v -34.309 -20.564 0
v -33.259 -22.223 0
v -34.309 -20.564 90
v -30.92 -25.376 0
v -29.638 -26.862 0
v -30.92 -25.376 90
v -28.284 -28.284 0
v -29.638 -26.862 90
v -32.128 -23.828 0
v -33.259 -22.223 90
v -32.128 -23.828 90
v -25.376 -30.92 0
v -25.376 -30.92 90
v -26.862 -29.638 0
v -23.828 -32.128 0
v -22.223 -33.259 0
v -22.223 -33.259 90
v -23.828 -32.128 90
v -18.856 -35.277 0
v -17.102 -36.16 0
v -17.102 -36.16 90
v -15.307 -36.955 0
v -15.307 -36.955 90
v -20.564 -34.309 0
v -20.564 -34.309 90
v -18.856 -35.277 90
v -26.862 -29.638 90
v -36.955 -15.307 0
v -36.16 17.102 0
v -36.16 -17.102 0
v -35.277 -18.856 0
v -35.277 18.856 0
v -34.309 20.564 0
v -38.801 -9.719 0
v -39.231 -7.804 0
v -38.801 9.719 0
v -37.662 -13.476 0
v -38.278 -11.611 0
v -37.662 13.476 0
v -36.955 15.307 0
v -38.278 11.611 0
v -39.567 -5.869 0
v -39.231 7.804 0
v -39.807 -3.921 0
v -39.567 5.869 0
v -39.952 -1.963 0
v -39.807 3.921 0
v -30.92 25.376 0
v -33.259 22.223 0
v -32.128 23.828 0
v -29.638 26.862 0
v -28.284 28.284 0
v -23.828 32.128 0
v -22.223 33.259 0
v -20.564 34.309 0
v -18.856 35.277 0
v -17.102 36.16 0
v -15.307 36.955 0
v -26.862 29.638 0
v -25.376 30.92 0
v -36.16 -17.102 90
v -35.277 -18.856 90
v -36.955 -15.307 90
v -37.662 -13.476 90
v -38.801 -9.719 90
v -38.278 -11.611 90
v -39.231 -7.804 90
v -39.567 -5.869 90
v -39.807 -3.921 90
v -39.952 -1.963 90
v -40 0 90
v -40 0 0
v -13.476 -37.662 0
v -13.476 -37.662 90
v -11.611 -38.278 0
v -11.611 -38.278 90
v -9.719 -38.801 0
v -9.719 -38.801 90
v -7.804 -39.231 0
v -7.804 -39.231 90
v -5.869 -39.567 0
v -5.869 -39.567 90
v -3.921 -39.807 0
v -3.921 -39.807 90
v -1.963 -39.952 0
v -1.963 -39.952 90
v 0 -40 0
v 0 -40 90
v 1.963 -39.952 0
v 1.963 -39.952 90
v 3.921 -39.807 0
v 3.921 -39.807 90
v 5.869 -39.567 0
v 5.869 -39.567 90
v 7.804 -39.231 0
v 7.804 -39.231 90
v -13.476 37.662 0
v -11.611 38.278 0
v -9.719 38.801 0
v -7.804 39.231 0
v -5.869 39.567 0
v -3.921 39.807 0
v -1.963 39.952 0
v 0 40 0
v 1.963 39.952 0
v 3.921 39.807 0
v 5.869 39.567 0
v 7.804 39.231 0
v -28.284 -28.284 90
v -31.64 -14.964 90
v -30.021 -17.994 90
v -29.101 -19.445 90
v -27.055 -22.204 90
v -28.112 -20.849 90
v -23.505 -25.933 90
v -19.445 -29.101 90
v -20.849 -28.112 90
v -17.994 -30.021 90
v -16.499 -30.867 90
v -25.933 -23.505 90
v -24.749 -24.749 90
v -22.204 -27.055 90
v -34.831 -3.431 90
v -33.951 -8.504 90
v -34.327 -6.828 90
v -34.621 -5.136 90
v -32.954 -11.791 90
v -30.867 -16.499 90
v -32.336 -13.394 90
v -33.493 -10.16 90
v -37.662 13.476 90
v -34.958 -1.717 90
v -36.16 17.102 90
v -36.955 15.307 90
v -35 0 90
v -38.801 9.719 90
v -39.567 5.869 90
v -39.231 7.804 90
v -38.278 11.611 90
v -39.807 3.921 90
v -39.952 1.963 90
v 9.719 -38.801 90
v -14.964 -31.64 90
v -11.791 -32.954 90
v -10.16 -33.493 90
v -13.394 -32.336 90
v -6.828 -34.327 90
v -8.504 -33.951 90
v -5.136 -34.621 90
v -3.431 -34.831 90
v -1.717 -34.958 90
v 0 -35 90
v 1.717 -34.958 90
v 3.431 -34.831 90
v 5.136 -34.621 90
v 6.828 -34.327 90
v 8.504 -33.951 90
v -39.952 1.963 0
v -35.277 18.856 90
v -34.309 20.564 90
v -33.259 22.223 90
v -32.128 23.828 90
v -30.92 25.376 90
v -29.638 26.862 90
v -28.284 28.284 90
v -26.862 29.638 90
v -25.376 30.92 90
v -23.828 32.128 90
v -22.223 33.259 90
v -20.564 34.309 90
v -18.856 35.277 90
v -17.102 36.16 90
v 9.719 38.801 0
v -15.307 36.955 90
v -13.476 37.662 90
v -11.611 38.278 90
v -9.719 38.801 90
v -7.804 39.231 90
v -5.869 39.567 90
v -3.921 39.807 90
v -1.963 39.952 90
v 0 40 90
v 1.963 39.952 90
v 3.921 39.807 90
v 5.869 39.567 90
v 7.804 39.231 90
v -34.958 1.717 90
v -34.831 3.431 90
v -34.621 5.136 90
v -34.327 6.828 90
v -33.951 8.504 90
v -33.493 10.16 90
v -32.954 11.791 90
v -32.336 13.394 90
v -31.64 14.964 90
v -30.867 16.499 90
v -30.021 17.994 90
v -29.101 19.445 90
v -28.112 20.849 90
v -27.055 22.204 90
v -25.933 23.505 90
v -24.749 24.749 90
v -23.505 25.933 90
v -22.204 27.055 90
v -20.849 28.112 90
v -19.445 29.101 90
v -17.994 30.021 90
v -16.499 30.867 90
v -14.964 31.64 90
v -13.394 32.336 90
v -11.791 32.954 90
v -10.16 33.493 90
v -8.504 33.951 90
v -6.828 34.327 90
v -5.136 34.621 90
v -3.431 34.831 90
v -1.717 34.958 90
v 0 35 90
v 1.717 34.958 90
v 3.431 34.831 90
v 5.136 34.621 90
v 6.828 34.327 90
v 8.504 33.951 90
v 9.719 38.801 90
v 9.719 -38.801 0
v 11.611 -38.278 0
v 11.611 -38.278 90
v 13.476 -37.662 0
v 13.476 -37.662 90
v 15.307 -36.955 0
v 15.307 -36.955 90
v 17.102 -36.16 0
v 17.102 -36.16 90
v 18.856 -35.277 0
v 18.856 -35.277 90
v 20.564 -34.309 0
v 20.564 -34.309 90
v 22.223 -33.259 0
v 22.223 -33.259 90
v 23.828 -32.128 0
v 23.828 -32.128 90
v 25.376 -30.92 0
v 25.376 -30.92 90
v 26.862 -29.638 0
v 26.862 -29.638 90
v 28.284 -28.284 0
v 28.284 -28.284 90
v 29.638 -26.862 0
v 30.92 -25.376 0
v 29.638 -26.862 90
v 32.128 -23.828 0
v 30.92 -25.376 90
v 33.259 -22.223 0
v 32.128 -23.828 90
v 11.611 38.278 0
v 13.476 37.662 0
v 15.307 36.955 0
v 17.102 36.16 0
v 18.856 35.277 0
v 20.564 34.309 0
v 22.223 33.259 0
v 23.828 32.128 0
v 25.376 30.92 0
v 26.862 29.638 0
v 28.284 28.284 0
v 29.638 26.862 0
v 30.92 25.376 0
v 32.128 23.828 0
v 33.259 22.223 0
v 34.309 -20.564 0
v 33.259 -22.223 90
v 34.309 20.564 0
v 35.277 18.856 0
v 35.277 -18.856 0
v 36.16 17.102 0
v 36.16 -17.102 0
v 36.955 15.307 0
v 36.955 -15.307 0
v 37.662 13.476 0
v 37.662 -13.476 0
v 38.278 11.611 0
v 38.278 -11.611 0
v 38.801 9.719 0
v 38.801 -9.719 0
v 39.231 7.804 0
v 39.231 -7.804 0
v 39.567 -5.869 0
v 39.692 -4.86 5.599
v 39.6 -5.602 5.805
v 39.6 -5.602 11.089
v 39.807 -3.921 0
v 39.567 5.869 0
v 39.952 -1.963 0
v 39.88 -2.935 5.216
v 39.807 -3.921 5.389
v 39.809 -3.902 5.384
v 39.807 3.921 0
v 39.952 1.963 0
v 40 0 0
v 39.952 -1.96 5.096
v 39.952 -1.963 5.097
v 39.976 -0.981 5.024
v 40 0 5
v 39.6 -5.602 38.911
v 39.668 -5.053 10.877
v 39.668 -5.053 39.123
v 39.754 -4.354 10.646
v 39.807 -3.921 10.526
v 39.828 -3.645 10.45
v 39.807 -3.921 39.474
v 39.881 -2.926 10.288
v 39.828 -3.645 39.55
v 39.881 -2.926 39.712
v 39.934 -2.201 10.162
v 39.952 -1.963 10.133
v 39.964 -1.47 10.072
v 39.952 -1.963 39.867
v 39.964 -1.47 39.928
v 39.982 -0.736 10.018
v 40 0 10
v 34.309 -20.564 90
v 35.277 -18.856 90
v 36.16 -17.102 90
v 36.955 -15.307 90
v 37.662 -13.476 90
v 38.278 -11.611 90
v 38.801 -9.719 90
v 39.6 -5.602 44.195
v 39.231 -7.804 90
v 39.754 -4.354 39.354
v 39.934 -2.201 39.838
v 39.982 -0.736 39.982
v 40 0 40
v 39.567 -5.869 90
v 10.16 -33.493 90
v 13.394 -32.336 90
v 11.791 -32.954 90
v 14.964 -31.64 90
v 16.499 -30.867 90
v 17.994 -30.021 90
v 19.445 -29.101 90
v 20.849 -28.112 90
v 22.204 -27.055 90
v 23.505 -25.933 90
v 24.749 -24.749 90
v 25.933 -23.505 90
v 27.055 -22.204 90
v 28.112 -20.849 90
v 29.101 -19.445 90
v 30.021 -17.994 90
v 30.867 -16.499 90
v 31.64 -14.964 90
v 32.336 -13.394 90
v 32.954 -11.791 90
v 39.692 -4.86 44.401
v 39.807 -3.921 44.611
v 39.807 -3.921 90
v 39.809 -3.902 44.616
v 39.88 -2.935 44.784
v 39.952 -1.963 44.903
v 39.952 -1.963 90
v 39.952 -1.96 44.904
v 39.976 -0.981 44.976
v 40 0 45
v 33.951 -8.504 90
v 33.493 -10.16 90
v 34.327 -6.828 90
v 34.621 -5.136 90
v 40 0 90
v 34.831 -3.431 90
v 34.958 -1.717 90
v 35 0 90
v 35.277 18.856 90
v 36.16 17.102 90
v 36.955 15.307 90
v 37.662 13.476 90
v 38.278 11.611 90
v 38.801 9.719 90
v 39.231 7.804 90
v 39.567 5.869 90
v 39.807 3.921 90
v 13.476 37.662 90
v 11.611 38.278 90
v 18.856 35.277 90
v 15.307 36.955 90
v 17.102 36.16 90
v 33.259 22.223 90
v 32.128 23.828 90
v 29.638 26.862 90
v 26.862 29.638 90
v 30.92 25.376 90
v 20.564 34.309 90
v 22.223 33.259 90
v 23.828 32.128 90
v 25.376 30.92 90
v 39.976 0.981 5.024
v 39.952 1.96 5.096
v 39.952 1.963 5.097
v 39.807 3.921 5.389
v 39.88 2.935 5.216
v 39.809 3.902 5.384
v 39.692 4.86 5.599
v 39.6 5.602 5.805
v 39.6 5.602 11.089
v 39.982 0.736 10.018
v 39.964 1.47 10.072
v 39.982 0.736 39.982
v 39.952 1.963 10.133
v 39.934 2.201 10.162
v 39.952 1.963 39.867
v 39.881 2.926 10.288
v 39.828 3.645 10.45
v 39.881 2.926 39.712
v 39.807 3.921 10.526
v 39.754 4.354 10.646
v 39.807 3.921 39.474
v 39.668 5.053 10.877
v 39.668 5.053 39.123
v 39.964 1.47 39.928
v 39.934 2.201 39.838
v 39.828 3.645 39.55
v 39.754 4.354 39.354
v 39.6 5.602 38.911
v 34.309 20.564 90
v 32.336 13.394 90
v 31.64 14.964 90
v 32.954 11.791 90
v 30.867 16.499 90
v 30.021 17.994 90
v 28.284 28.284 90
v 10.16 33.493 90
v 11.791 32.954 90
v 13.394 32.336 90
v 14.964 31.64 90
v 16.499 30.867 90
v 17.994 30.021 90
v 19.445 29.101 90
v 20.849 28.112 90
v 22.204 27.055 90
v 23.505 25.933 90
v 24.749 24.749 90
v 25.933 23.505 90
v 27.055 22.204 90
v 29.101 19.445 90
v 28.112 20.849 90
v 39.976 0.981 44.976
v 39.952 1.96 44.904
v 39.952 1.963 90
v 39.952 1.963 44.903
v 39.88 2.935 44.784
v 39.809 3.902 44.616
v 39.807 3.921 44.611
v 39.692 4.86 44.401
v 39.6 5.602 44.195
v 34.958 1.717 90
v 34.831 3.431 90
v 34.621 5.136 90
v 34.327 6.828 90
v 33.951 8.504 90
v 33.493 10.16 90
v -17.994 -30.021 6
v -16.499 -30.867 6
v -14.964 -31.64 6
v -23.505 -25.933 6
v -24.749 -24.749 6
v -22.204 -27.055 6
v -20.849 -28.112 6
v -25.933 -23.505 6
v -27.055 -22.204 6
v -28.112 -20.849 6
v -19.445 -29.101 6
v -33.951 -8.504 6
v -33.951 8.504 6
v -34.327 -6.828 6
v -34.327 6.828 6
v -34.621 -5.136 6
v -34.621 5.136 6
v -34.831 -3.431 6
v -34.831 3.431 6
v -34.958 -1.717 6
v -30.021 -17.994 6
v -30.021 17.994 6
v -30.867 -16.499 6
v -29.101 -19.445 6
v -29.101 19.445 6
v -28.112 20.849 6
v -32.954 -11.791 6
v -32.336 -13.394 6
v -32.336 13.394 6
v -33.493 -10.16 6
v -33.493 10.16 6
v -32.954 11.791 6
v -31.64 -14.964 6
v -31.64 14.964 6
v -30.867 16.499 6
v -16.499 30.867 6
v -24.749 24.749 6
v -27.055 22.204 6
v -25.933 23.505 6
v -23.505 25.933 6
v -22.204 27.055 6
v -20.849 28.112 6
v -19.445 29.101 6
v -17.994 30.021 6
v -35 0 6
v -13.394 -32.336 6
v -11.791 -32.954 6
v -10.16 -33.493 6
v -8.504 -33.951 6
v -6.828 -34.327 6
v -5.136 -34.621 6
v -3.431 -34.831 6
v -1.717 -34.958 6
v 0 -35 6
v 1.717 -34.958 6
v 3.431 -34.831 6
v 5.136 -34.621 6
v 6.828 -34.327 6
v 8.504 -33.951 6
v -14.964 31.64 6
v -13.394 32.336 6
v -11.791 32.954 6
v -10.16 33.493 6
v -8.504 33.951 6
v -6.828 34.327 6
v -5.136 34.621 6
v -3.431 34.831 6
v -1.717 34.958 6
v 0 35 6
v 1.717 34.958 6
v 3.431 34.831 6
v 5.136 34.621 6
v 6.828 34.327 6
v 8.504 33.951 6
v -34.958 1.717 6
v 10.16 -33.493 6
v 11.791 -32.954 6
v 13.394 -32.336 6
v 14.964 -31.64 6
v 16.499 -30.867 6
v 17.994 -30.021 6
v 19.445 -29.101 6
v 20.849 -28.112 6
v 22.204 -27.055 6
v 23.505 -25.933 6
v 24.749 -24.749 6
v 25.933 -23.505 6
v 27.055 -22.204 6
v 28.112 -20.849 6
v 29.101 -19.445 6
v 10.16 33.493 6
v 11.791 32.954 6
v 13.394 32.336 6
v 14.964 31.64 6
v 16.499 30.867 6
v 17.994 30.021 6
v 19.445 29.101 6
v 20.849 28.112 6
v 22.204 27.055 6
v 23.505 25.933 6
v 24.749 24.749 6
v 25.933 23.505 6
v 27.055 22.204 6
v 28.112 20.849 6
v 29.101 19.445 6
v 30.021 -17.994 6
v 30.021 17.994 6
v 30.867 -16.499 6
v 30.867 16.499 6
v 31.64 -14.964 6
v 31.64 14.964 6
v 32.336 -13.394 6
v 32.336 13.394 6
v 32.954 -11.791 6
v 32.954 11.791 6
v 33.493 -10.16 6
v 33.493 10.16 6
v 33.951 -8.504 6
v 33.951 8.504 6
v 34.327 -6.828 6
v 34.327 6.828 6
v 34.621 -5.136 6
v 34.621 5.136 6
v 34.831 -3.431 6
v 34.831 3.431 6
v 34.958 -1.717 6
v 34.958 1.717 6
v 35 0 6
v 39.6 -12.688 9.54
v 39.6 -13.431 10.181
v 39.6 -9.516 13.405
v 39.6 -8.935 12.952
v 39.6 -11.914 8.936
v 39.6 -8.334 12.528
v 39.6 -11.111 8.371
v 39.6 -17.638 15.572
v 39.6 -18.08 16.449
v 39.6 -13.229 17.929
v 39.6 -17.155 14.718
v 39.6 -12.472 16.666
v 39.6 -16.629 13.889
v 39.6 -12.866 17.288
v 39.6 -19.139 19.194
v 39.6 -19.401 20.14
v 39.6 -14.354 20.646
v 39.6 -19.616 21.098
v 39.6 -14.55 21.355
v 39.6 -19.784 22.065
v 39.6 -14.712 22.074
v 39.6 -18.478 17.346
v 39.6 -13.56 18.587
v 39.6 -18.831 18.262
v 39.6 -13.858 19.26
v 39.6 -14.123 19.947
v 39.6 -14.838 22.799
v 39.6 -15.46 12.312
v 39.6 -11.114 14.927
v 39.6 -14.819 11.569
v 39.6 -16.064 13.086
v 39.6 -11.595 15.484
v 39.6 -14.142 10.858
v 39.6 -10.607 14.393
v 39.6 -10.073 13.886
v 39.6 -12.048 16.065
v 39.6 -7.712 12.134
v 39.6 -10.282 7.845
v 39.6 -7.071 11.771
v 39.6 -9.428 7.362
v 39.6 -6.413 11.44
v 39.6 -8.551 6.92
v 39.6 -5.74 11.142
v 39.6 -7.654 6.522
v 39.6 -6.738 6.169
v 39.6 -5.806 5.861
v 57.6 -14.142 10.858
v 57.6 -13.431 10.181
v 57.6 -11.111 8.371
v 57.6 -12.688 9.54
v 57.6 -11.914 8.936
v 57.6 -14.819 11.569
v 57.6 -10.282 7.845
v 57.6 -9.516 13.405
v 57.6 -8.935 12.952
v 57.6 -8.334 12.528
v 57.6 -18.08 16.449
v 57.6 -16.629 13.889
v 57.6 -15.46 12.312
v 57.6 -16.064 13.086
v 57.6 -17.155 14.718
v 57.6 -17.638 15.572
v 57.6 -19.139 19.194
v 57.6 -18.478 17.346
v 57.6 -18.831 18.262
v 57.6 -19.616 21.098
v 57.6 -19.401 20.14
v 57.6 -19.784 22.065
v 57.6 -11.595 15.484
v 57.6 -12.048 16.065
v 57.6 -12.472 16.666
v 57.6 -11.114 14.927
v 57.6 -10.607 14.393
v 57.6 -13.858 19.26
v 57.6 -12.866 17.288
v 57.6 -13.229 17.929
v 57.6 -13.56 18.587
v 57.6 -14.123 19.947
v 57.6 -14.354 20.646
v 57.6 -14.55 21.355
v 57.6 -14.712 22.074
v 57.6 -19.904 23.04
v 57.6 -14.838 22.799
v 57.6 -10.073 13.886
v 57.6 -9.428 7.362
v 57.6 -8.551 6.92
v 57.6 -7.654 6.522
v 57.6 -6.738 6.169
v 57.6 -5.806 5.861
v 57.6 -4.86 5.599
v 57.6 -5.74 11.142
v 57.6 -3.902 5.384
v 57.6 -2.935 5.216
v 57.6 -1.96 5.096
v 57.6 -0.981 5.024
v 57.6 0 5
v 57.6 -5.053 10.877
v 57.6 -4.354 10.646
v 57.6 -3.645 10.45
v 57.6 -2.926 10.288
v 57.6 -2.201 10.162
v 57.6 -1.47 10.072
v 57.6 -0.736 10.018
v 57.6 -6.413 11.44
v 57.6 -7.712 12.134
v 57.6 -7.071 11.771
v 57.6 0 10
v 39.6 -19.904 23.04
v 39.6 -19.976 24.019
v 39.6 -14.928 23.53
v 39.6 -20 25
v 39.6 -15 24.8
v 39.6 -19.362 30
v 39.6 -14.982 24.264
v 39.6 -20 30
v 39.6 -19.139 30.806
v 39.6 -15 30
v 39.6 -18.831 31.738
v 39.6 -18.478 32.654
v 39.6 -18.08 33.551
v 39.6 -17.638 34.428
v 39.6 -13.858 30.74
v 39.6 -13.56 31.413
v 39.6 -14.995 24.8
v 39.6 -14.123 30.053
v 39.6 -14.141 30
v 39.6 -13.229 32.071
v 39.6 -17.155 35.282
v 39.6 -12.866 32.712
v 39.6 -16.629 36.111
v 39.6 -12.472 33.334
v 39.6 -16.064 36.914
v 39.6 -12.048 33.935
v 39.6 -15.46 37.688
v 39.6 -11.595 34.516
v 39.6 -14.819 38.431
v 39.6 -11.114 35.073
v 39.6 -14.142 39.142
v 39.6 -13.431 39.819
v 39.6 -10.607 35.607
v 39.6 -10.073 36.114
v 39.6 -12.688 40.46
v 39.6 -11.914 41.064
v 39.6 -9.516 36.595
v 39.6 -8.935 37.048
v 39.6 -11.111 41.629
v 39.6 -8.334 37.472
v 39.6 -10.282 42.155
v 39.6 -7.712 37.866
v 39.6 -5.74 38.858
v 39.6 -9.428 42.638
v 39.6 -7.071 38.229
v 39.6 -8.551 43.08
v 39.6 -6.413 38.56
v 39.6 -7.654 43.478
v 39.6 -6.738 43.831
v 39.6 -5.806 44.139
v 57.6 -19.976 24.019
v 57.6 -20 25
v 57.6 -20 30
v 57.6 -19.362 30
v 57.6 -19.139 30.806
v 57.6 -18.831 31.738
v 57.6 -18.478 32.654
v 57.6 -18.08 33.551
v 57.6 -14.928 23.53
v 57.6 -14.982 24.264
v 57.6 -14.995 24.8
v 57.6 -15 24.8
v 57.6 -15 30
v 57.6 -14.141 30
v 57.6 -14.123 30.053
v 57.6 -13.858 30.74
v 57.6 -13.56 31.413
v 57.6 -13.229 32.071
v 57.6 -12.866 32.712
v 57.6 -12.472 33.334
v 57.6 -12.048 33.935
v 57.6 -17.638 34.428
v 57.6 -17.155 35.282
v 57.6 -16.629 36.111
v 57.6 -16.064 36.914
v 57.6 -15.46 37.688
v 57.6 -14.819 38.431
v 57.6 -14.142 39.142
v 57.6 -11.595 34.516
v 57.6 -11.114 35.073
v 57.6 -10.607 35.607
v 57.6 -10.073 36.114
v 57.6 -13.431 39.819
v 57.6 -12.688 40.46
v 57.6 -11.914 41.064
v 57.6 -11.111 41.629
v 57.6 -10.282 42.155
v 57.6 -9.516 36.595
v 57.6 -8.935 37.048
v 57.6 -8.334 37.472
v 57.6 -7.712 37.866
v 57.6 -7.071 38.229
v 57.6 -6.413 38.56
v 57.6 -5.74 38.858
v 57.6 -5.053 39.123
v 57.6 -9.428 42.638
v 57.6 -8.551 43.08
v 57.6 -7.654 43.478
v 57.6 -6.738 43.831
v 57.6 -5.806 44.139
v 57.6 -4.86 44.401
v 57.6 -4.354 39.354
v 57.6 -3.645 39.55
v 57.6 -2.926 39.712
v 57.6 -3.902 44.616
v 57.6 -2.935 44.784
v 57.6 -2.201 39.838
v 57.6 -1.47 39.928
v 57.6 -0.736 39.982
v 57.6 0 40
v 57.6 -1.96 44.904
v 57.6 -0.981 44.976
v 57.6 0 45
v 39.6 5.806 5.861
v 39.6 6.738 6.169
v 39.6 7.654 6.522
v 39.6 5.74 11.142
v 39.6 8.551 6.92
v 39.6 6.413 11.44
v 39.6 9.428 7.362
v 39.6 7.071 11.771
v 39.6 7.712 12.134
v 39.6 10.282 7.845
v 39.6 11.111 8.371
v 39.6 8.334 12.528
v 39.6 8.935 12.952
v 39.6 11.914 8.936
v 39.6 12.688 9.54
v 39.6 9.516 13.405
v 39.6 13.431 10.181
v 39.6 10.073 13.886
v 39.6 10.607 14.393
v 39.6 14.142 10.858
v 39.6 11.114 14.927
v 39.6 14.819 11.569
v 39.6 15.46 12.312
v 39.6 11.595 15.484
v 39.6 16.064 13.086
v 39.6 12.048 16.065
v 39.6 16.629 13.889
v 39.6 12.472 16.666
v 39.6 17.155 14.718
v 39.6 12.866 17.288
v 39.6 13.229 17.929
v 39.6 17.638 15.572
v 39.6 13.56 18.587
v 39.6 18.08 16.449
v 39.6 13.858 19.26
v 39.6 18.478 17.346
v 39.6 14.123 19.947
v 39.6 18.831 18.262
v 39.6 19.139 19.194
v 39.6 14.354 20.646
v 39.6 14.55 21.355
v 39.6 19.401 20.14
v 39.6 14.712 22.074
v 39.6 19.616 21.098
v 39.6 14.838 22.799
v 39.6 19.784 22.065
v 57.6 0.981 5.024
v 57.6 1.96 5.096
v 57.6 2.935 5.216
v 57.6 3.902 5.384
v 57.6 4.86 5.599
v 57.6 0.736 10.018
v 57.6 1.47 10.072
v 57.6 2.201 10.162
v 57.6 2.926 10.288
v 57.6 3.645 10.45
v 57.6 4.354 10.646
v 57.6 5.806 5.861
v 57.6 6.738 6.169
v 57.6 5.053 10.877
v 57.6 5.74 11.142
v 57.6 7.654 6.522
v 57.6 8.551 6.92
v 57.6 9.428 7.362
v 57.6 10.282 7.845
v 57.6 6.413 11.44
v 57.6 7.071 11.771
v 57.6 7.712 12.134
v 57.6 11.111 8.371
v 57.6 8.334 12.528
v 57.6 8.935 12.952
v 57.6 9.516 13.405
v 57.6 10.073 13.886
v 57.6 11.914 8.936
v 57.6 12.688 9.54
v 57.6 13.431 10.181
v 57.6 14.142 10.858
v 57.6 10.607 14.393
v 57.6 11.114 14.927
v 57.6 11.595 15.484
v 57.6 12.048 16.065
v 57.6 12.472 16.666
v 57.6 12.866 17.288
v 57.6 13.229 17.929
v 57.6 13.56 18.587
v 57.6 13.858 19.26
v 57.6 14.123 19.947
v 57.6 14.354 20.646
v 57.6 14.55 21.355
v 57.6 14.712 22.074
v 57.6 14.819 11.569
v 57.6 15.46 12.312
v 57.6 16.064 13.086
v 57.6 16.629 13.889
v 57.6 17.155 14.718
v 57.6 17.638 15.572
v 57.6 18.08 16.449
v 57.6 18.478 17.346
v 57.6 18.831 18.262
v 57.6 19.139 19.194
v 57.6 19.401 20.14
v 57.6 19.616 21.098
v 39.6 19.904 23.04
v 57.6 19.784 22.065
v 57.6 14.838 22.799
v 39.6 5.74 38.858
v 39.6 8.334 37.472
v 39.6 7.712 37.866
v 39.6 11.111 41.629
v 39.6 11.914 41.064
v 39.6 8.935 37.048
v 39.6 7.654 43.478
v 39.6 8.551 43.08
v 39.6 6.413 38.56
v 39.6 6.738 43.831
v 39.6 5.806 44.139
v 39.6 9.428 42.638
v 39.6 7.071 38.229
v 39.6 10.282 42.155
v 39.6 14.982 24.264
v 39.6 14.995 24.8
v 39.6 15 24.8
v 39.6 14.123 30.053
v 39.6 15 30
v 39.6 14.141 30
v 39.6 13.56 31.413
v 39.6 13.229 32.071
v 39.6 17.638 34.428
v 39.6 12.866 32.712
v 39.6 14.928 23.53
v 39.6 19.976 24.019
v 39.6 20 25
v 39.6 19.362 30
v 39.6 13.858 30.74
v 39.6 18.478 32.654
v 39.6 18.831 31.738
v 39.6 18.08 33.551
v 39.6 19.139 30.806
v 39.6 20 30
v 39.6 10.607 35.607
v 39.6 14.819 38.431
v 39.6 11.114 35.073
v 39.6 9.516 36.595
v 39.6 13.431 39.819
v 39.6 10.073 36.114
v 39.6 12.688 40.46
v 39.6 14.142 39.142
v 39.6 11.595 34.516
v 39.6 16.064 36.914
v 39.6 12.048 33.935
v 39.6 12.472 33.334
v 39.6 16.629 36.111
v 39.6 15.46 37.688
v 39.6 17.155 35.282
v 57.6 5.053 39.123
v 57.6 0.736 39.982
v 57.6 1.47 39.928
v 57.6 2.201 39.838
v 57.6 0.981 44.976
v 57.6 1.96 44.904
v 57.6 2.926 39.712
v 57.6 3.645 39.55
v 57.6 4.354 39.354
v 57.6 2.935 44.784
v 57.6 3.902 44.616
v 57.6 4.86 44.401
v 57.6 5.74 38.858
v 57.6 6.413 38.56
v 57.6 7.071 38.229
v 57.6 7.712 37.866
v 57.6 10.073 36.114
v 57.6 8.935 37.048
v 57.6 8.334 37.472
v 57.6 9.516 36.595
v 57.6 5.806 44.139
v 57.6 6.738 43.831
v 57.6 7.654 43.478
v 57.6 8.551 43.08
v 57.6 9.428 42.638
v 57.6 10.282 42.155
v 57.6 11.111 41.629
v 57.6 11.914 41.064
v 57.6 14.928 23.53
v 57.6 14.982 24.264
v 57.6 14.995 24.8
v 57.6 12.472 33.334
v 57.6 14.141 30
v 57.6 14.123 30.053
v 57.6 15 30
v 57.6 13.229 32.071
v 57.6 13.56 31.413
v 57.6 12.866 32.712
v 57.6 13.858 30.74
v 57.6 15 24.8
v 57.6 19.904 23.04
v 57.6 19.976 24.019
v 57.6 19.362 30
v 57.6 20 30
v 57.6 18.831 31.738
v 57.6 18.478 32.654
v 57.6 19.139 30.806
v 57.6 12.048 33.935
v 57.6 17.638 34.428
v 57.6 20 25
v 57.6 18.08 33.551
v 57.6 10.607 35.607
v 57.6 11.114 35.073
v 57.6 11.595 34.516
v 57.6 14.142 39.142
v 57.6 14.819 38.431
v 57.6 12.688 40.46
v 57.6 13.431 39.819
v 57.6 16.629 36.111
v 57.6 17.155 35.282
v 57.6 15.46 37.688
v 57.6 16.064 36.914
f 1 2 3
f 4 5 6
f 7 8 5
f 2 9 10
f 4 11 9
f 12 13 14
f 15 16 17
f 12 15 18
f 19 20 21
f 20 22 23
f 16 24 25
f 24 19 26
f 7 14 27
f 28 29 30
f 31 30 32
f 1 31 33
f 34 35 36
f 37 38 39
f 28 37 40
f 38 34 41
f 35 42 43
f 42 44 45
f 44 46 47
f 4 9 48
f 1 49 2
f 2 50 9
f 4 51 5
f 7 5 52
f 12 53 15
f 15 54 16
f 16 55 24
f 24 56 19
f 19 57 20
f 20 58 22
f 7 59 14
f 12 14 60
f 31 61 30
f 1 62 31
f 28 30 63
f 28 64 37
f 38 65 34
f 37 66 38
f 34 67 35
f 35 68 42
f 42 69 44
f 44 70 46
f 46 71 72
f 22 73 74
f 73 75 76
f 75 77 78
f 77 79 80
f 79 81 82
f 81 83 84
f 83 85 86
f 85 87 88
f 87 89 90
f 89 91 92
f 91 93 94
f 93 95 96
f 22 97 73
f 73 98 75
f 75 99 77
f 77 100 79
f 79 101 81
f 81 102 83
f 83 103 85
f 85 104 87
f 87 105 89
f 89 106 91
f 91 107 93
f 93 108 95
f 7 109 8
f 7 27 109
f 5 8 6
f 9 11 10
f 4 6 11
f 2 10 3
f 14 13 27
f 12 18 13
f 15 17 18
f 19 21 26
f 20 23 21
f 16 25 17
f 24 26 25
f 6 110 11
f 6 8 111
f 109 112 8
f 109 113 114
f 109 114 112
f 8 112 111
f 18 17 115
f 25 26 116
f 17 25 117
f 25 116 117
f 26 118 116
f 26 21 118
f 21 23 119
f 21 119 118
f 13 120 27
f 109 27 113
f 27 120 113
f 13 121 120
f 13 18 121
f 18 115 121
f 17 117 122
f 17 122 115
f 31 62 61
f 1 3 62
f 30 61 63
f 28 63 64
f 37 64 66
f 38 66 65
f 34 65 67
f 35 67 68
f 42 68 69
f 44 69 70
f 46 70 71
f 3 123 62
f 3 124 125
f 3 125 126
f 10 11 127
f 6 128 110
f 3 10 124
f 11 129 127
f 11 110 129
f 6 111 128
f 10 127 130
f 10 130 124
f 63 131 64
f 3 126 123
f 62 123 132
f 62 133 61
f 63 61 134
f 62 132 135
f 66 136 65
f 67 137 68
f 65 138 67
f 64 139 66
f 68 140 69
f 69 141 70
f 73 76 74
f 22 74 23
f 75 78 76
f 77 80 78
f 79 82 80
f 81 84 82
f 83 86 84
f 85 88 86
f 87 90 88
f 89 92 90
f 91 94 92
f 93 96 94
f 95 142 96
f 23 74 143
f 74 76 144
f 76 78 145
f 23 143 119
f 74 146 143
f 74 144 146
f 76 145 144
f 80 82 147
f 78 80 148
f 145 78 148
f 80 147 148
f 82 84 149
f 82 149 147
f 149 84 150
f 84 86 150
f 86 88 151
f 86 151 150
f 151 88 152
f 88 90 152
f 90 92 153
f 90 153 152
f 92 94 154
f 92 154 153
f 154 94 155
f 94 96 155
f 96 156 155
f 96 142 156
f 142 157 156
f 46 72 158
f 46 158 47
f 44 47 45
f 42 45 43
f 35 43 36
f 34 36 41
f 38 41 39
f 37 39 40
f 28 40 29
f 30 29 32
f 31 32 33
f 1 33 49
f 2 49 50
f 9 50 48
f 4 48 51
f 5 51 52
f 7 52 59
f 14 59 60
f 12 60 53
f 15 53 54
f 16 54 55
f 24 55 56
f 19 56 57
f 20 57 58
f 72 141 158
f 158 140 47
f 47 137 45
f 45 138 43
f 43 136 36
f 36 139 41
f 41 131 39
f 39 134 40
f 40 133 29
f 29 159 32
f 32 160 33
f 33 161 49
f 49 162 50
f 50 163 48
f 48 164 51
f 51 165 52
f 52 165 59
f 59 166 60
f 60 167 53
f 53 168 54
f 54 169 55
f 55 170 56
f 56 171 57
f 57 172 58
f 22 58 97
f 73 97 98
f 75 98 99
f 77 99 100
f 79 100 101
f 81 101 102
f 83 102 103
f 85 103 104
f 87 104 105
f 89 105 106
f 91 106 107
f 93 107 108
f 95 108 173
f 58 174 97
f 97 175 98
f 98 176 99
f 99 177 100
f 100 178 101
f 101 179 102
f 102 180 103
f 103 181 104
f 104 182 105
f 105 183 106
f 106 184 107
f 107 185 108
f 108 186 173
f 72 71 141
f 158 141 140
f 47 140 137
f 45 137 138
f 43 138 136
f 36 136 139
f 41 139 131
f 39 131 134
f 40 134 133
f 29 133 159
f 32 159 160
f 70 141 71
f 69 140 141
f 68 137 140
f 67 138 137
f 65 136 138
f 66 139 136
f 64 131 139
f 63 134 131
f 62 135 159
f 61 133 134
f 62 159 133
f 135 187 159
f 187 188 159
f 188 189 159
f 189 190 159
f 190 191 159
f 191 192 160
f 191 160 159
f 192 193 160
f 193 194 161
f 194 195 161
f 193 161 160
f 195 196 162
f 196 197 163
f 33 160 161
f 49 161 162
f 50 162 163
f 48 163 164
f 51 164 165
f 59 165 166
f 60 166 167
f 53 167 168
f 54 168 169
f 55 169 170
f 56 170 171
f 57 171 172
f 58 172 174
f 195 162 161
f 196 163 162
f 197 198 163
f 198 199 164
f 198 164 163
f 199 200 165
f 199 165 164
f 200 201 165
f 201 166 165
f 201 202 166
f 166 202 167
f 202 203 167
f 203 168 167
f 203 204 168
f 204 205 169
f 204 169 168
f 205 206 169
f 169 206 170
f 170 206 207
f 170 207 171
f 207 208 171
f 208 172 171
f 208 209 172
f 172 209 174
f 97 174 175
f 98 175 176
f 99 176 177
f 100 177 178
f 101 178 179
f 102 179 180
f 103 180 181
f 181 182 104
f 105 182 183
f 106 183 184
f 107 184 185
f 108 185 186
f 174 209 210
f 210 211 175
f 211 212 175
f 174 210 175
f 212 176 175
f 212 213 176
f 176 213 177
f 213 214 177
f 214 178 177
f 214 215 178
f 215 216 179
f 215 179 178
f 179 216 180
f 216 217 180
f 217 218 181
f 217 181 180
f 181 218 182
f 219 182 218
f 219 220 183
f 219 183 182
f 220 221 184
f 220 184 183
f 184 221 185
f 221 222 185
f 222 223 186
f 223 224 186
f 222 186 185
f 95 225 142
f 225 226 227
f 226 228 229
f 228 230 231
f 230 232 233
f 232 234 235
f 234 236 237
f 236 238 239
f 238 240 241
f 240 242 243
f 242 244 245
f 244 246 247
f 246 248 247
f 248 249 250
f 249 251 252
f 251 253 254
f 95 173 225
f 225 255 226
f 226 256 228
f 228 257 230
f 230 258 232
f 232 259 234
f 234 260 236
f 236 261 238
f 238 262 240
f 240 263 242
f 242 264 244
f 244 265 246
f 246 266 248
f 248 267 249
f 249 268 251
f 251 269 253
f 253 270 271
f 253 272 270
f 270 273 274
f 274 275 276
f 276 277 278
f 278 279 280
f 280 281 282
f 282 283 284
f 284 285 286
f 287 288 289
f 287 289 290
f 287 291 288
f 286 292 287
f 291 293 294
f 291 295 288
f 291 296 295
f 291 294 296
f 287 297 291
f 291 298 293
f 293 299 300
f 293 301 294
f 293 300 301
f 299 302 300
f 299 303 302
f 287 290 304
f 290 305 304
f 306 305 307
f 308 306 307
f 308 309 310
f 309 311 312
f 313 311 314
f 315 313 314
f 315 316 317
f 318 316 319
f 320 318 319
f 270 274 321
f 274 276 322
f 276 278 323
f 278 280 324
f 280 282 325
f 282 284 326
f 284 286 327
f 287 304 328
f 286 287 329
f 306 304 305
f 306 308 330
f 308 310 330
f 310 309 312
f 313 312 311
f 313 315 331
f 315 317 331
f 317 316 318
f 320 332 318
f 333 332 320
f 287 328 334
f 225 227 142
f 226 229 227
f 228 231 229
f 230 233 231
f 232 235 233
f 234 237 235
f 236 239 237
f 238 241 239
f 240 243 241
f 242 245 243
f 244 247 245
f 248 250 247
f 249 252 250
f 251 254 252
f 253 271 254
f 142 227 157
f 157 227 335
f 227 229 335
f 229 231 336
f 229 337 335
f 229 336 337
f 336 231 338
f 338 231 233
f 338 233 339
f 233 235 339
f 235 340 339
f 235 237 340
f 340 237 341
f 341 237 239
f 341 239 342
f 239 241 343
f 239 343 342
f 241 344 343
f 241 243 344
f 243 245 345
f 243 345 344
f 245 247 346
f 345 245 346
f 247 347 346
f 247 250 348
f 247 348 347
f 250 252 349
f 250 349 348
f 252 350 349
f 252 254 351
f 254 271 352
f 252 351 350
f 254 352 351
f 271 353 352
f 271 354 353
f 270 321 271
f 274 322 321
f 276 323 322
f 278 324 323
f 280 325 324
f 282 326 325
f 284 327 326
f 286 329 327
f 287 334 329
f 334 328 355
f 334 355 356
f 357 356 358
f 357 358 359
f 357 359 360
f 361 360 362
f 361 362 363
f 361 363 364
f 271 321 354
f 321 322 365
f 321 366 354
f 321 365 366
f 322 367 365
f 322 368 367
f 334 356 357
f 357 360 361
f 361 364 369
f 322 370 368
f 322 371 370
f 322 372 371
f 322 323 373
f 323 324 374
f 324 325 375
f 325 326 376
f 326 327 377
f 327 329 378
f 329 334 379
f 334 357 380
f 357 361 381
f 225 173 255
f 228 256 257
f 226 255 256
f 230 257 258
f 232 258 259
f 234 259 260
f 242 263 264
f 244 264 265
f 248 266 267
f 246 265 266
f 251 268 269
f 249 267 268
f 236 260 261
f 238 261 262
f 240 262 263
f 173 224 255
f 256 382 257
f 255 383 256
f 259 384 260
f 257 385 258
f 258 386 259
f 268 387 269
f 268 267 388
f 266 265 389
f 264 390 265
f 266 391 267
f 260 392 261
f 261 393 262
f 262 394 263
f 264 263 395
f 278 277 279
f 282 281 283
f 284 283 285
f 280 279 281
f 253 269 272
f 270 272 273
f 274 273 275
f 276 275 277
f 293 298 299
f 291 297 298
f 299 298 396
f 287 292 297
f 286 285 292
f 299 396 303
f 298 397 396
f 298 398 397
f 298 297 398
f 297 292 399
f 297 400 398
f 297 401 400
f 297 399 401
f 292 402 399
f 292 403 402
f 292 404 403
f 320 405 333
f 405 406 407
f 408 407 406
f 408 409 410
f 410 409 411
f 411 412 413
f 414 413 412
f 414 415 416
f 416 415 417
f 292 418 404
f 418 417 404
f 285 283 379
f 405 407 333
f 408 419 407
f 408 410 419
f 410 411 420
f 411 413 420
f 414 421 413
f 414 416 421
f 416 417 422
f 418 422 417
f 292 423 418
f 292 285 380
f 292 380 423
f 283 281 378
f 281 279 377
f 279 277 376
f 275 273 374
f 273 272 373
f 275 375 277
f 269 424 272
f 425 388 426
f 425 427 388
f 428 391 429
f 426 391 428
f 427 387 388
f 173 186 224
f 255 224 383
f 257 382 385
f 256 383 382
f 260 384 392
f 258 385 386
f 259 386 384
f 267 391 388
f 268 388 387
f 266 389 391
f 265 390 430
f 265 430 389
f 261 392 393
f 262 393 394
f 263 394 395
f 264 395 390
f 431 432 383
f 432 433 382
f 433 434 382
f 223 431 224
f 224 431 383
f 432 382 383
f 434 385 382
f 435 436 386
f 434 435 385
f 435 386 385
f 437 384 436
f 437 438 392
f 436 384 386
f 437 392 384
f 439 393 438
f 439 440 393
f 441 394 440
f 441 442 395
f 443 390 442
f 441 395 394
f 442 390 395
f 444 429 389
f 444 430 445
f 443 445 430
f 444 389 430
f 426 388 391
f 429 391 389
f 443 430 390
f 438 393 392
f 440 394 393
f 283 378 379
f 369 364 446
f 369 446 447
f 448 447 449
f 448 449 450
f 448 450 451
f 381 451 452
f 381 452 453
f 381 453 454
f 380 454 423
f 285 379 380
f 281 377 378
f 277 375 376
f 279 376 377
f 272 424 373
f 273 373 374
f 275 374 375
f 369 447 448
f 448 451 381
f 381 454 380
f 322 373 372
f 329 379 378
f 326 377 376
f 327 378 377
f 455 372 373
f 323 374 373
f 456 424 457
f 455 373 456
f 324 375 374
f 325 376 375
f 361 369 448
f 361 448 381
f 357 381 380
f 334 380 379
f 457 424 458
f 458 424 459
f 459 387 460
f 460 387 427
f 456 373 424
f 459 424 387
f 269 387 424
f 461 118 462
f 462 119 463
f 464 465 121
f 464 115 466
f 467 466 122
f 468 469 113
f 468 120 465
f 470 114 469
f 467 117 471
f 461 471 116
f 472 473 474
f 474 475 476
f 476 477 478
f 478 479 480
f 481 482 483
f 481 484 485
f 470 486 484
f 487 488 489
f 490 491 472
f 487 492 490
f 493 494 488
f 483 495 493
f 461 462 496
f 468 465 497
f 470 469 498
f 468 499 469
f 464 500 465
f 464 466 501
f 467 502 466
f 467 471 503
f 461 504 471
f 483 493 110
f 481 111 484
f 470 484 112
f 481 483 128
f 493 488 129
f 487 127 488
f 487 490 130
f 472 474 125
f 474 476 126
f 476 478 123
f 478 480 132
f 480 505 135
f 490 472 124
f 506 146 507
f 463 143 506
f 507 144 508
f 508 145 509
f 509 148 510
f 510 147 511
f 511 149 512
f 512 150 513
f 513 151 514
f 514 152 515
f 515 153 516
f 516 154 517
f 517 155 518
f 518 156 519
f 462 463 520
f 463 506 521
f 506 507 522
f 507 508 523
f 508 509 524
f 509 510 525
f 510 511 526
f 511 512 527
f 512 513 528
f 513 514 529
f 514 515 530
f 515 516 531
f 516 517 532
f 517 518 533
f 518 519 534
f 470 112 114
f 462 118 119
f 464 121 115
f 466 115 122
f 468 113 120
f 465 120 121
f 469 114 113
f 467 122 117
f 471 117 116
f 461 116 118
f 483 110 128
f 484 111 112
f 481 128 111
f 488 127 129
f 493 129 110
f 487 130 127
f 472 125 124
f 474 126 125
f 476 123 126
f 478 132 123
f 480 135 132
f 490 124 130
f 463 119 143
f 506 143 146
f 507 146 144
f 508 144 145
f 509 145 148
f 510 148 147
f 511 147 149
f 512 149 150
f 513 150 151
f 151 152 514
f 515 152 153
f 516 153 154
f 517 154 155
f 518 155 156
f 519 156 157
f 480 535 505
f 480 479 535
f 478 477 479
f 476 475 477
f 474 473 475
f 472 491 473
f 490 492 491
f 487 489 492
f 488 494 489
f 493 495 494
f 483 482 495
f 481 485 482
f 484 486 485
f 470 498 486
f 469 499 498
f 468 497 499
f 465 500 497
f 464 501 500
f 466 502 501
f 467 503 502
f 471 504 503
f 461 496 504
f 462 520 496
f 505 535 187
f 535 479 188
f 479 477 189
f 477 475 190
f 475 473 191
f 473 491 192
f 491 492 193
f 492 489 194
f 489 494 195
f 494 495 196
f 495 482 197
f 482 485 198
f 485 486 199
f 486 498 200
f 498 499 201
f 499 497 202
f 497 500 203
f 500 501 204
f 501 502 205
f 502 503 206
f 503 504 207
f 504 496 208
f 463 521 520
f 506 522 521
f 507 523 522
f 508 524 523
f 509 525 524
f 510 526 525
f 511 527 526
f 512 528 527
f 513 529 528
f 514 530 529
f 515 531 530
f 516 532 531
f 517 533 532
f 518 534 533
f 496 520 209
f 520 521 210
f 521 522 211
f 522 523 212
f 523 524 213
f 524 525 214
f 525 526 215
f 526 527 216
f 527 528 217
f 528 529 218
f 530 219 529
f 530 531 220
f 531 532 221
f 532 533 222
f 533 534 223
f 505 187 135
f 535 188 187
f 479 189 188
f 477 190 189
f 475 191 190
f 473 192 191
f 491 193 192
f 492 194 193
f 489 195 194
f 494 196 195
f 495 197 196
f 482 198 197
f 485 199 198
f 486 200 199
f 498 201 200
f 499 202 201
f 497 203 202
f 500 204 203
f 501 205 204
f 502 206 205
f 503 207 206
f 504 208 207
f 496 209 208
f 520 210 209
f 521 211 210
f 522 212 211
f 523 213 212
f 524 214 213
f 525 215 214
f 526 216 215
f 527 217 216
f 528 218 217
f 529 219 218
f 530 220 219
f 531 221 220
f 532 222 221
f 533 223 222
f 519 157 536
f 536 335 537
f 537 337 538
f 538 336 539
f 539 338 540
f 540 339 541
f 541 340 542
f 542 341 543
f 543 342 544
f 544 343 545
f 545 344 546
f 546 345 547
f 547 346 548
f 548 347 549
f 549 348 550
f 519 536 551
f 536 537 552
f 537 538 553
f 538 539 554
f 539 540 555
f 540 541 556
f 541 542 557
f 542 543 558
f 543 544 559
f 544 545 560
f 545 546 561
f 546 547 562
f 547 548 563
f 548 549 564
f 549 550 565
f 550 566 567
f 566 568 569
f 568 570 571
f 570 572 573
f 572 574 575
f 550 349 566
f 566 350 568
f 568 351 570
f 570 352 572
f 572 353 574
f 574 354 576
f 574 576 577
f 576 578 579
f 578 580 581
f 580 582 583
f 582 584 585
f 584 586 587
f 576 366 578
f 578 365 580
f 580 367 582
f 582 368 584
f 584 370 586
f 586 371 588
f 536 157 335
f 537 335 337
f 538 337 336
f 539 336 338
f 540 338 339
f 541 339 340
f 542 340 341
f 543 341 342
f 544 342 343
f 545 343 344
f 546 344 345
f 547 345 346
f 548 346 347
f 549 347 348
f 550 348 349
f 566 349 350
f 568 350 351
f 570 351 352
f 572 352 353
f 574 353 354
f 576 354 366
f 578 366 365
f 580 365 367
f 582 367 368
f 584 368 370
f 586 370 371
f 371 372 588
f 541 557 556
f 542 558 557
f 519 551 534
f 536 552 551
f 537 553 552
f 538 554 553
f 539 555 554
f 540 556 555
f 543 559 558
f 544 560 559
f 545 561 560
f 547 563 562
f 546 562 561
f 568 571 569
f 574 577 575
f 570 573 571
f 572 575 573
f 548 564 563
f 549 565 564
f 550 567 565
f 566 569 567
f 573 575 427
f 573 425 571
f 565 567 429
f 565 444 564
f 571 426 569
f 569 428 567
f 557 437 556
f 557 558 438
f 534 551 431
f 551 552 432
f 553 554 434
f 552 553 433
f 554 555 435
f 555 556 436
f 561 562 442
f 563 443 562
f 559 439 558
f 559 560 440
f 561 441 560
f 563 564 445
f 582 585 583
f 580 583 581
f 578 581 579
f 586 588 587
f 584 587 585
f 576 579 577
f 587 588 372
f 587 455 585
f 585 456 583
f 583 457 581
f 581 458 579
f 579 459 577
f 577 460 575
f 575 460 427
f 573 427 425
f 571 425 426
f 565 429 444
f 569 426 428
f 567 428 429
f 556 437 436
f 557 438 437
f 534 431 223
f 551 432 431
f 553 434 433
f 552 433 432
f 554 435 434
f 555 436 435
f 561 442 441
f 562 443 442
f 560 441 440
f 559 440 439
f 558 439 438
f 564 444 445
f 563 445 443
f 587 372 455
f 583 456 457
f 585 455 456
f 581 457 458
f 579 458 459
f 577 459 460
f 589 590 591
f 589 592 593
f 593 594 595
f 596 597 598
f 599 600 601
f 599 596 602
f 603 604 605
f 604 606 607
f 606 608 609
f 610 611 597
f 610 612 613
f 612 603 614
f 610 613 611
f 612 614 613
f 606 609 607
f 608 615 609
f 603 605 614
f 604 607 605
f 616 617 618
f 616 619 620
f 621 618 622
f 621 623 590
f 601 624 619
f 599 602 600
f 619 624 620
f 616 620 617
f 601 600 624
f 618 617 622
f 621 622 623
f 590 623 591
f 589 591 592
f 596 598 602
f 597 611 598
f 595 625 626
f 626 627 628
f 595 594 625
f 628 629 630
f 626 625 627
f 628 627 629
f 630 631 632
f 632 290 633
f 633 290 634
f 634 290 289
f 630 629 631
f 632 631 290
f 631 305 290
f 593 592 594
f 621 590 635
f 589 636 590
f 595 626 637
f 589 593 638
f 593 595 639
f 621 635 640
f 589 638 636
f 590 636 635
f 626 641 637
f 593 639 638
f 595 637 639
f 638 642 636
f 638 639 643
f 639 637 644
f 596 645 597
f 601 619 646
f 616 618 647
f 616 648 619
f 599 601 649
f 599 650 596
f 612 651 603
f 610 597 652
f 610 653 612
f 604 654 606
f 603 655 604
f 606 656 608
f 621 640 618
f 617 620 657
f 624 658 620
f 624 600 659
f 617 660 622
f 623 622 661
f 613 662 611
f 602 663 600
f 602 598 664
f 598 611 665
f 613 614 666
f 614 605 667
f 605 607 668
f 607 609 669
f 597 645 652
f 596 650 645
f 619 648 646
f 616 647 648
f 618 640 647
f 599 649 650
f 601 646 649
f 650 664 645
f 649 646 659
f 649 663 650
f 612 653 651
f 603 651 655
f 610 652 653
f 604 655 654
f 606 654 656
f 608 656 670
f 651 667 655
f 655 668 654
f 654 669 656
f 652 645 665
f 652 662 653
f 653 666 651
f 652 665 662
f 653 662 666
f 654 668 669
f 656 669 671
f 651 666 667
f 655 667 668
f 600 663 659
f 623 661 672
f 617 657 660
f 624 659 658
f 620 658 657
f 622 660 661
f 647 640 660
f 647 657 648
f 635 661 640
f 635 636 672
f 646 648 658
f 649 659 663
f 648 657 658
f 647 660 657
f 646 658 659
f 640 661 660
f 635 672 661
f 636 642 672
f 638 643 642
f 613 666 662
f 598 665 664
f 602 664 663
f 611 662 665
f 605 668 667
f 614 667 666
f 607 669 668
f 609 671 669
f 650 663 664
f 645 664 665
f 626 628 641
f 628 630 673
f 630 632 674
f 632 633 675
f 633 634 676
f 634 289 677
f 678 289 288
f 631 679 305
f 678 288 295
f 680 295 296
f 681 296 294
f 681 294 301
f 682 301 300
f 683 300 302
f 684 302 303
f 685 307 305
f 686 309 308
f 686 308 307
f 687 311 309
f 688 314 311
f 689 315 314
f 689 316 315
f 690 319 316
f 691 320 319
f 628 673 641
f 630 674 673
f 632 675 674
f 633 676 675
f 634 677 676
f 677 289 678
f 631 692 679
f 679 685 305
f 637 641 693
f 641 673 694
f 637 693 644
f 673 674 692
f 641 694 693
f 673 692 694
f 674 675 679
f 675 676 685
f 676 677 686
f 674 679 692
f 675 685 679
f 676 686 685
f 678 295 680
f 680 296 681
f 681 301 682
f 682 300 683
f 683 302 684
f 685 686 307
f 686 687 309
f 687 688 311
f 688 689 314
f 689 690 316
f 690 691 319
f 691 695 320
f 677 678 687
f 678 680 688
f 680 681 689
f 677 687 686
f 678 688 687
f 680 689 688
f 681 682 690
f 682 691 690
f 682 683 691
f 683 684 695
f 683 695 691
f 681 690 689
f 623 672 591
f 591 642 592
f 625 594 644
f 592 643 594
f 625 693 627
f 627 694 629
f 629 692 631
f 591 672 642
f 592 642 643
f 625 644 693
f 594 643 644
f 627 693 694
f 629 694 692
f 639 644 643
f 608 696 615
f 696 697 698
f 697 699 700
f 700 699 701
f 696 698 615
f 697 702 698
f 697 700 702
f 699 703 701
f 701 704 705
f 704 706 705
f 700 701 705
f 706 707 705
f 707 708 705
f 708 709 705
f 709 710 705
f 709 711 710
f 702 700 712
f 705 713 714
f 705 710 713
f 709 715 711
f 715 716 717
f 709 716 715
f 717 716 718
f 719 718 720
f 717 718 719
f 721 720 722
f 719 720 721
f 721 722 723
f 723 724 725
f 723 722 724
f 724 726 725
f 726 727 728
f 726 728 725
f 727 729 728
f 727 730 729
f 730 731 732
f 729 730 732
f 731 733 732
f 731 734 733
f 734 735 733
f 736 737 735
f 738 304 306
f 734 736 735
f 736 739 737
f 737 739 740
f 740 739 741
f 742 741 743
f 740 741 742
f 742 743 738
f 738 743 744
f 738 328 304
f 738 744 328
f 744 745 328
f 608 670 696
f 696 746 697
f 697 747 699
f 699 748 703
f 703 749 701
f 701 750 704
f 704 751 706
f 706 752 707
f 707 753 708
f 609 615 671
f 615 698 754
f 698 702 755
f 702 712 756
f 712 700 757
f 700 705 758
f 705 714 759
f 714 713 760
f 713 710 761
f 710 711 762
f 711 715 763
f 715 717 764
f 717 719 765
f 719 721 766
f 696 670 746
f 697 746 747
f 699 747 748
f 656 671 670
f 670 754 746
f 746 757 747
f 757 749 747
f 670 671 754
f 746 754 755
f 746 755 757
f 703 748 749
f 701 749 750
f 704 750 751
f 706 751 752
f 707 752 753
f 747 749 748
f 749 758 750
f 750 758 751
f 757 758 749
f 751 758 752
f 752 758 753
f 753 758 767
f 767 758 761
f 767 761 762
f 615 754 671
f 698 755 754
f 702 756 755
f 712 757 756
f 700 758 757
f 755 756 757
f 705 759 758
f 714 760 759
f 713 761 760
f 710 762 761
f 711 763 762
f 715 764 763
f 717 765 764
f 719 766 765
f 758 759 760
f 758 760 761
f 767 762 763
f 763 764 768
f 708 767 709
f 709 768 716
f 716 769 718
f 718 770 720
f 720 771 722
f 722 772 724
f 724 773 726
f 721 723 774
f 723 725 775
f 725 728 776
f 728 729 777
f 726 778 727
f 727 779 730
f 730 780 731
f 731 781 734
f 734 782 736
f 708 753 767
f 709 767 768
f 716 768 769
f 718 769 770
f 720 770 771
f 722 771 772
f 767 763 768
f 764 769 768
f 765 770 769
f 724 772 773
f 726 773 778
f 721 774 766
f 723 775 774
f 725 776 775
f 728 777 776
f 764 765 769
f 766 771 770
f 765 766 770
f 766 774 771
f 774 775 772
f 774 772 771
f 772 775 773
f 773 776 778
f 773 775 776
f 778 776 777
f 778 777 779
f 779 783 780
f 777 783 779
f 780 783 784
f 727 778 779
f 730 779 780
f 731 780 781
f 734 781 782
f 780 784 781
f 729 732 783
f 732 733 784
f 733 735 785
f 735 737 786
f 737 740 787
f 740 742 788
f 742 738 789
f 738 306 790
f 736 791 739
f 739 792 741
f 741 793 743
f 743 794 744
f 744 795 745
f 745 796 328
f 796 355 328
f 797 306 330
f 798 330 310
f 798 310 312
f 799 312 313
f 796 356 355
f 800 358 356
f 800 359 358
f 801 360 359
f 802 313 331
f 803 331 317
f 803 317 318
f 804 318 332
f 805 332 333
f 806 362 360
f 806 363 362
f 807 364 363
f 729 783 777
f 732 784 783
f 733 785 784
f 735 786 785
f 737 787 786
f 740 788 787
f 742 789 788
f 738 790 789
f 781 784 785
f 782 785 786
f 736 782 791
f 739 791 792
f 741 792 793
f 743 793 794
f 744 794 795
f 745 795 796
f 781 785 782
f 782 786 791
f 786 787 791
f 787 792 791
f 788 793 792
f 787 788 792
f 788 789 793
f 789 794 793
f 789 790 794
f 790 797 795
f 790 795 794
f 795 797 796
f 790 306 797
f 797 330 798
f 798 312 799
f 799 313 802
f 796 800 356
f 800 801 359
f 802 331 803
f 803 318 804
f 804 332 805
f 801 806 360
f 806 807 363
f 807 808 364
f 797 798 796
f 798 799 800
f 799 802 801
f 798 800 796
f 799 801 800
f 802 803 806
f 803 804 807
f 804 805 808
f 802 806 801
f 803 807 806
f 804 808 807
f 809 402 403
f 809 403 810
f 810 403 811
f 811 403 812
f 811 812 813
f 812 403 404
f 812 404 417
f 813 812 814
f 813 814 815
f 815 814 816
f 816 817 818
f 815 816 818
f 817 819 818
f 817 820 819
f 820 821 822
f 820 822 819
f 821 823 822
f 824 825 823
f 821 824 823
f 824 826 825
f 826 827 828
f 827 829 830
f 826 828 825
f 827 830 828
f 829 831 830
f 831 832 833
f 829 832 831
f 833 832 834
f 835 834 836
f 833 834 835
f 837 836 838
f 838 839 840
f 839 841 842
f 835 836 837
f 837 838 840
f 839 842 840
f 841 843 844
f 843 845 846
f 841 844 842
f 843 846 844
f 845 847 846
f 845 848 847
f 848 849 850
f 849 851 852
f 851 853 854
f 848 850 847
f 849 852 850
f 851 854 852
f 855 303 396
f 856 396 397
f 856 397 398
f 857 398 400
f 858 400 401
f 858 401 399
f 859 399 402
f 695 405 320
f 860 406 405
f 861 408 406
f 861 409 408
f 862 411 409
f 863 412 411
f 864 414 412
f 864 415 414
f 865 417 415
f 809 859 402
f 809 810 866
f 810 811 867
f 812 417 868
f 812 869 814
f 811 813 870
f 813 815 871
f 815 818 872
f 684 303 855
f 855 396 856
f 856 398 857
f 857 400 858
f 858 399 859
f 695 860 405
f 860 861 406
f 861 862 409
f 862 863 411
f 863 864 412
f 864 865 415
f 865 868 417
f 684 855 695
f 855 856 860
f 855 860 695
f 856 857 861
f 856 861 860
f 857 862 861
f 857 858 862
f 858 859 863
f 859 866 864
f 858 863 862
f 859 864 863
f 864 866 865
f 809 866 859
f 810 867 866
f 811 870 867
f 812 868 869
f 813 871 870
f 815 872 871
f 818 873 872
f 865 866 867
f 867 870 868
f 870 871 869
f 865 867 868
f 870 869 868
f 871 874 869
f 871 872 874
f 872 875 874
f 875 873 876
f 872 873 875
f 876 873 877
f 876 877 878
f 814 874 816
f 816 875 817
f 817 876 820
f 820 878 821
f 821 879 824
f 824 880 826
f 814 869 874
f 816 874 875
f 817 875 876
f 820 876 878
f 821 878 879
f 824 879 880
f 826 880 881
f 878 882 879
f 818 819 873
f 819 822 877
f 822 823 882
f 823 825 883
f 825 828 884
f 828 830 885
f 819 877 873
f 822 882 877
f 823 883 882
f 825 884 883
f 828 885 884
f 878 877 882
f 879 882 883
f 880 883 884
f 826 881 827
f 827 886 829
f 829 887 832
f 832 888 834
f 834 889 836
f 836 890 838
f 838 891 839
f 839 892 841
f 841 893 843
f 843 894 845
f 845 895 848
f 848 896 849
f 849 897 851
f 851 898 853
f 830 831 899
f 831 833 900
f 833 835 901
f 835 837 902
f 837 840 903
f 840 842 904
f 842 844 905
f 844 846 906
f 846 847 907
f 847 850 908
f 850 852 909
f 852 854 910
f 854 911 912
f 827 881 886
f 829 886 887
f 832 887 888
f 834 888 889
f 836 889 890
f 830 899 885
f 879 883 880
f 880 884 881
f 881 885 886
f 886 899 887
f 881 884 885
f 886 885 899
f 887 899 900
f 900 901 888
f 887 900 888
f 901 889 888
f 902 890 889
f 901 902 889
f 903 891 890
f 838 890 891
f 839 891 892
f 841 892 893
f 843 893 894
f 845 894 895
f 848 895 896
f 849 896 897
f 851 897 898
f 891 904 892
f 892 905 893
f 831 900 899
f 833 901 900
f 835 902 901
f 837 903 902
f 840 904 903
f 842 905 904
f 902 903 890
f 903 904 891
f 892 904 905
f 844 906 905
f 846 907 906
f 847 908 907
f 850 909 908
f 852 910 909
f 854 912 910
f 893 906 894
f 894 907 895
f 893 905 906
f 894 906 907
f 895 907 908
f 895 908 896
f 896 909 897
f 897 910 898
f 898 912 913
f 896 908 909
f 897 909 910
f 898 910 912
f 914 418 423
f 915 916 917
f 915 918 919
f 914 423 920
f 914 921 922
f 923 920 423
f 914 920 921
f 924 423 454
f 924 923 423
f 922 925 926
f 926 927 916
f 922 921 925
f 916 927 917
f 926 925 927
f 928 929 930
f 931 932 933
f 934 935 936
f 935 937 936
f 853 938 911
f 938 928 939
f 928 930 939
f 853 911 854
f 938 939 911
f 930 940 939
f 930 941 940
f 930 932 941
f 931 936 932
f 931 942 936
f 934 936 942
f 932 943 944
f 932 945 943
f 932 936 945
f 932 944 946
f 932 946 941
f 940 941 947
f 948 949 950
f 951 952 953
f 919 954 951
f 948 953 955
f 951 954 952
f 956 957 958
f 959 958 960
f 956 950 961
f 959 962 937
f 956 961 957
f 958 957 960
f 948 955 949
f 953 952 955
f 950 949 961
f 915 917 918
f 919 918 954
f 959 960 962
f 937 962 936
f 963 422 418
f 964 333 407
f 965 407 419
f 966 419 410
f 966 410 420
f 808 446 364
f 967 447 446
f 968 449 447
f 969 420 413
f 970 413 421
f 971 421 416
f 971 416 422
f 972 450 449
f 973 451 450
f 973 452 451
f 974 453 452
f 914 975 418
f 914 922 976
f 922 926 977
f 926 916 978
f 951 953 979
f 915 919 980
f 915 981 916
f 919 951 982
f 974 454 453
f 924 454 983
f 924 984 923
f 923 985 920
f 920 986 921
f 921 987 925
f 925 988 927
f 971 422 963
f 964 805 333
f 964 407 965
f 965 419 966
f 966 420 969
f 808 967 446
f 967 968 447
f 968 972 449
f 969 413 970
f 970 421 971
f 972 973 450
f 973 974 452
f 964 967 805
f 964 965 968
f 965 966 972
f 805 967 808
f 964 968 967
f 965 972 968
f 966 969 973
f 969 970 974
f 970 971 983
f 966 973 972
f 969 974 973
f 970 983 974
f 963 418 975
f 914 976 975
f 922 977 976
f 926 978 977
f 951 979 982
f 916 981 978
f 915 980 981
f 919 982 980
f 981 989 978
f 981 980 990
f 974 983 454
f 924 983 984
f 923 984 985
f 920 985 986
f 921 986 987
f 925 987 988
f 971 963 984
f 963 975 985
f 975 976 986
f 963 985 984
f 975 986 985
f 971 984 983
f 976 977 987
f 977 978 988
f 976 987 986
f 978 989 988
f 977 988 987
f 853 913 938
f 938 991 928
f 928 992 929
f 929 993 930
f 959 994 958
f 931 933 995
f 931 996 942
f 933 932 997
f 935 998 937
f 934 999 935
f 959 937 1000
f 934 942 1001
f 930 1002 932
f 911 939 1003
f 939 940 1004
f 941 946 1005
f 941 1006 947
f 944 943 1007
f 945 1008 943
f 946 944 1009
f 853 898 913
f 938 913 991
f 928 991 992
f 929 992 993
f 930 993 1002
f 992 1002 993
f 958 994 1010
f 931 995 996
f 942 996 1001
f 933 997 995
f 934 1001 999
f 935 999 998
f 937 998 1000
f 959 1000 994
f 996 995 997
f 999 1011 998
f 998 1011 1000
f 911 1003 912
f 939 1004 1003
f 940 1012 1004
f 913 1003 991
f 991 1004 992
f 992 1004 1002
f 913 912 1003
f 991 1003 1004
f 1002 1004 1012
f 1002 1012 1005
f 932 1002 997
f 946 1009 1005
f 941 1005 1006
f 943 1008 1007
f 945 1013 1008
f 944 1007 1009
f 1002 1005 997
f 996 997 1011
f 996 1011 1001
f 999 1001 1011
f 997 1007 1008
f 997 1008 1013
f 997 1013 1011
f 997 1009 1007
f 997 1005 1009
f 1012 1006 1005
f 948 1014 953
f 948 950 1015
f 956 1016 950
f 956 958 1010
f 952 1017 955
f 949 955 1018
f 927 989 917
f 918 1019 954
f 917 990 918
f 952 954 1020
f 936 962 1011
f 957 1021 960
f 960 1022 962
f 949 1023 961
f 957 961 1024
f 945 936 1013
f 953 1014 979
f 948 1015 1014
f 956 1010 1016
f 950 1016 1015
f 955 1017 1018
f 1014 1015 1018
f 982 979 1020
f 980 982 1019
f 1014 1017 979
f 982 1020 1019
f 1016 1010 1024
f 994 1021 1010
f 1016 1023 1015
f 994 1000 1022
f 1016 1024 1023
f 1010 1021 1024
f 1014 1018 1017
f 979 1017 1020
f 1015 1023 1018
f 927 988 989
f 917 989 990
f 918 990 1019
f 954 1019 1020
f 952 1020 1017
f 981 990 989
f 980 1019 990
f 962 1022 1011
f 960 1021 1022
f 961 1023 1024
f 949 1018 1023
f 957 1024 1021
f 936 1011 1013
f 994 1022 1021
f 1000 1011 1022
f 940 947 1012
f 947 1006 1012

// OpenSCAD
$fn = 128;

outer_d = 80;
inner_d = 70;
height = 90;
bottom_thickness = 6;

handle_clear_w = 25;
handle_clear_h = 30;
handle_wall = 5;
handle_depth = 18;

module mug_body() {
    difference() {
        cylinder(h = height, d = outer_d);
        translate([0, 0, bottom_thickness])
            cylinder(h = height - bottom_thickness + 0.1, d = inner_d);
    }
}

module handle_solid() {
    // D-shaped handle with the flat side facing the mug body
    // Built in YZ cross-section and extruded along +X
    translate([outer_d/2 - 1.0, 0, height/2 - handle_clear_h/2])
        rotate([0, 90, 0])
        linear_extrude(height = handle_depth)
        difference() {
            // outer profile: rectangle on body side + semicircle outward
            union() {
                translate([0, -(handle_clear_h/2 + handle_wall)])
                    square([handle_wall, handle_clear_h + 2*handle_wall], center = false);
                translate([handle_wall, 0])
                    circle(r = handle_clear_h/2 + handle_wall);
            }

            // inner void: 25mm wide x 30mm high
            union() {
                translate([0, -handle_clear_h/2])
                    square([handle_wall + 0.2, handle_clear_h], center = false);
                translate([handle_wall, 0])
                    circle(r = handle_clear_h/2);
            }
        }
}

union() {
    mug_body();

    // Attach handle only on the +X side, centered vertically
    translate([0.6, 0, 0])
        handle_solid();
}
